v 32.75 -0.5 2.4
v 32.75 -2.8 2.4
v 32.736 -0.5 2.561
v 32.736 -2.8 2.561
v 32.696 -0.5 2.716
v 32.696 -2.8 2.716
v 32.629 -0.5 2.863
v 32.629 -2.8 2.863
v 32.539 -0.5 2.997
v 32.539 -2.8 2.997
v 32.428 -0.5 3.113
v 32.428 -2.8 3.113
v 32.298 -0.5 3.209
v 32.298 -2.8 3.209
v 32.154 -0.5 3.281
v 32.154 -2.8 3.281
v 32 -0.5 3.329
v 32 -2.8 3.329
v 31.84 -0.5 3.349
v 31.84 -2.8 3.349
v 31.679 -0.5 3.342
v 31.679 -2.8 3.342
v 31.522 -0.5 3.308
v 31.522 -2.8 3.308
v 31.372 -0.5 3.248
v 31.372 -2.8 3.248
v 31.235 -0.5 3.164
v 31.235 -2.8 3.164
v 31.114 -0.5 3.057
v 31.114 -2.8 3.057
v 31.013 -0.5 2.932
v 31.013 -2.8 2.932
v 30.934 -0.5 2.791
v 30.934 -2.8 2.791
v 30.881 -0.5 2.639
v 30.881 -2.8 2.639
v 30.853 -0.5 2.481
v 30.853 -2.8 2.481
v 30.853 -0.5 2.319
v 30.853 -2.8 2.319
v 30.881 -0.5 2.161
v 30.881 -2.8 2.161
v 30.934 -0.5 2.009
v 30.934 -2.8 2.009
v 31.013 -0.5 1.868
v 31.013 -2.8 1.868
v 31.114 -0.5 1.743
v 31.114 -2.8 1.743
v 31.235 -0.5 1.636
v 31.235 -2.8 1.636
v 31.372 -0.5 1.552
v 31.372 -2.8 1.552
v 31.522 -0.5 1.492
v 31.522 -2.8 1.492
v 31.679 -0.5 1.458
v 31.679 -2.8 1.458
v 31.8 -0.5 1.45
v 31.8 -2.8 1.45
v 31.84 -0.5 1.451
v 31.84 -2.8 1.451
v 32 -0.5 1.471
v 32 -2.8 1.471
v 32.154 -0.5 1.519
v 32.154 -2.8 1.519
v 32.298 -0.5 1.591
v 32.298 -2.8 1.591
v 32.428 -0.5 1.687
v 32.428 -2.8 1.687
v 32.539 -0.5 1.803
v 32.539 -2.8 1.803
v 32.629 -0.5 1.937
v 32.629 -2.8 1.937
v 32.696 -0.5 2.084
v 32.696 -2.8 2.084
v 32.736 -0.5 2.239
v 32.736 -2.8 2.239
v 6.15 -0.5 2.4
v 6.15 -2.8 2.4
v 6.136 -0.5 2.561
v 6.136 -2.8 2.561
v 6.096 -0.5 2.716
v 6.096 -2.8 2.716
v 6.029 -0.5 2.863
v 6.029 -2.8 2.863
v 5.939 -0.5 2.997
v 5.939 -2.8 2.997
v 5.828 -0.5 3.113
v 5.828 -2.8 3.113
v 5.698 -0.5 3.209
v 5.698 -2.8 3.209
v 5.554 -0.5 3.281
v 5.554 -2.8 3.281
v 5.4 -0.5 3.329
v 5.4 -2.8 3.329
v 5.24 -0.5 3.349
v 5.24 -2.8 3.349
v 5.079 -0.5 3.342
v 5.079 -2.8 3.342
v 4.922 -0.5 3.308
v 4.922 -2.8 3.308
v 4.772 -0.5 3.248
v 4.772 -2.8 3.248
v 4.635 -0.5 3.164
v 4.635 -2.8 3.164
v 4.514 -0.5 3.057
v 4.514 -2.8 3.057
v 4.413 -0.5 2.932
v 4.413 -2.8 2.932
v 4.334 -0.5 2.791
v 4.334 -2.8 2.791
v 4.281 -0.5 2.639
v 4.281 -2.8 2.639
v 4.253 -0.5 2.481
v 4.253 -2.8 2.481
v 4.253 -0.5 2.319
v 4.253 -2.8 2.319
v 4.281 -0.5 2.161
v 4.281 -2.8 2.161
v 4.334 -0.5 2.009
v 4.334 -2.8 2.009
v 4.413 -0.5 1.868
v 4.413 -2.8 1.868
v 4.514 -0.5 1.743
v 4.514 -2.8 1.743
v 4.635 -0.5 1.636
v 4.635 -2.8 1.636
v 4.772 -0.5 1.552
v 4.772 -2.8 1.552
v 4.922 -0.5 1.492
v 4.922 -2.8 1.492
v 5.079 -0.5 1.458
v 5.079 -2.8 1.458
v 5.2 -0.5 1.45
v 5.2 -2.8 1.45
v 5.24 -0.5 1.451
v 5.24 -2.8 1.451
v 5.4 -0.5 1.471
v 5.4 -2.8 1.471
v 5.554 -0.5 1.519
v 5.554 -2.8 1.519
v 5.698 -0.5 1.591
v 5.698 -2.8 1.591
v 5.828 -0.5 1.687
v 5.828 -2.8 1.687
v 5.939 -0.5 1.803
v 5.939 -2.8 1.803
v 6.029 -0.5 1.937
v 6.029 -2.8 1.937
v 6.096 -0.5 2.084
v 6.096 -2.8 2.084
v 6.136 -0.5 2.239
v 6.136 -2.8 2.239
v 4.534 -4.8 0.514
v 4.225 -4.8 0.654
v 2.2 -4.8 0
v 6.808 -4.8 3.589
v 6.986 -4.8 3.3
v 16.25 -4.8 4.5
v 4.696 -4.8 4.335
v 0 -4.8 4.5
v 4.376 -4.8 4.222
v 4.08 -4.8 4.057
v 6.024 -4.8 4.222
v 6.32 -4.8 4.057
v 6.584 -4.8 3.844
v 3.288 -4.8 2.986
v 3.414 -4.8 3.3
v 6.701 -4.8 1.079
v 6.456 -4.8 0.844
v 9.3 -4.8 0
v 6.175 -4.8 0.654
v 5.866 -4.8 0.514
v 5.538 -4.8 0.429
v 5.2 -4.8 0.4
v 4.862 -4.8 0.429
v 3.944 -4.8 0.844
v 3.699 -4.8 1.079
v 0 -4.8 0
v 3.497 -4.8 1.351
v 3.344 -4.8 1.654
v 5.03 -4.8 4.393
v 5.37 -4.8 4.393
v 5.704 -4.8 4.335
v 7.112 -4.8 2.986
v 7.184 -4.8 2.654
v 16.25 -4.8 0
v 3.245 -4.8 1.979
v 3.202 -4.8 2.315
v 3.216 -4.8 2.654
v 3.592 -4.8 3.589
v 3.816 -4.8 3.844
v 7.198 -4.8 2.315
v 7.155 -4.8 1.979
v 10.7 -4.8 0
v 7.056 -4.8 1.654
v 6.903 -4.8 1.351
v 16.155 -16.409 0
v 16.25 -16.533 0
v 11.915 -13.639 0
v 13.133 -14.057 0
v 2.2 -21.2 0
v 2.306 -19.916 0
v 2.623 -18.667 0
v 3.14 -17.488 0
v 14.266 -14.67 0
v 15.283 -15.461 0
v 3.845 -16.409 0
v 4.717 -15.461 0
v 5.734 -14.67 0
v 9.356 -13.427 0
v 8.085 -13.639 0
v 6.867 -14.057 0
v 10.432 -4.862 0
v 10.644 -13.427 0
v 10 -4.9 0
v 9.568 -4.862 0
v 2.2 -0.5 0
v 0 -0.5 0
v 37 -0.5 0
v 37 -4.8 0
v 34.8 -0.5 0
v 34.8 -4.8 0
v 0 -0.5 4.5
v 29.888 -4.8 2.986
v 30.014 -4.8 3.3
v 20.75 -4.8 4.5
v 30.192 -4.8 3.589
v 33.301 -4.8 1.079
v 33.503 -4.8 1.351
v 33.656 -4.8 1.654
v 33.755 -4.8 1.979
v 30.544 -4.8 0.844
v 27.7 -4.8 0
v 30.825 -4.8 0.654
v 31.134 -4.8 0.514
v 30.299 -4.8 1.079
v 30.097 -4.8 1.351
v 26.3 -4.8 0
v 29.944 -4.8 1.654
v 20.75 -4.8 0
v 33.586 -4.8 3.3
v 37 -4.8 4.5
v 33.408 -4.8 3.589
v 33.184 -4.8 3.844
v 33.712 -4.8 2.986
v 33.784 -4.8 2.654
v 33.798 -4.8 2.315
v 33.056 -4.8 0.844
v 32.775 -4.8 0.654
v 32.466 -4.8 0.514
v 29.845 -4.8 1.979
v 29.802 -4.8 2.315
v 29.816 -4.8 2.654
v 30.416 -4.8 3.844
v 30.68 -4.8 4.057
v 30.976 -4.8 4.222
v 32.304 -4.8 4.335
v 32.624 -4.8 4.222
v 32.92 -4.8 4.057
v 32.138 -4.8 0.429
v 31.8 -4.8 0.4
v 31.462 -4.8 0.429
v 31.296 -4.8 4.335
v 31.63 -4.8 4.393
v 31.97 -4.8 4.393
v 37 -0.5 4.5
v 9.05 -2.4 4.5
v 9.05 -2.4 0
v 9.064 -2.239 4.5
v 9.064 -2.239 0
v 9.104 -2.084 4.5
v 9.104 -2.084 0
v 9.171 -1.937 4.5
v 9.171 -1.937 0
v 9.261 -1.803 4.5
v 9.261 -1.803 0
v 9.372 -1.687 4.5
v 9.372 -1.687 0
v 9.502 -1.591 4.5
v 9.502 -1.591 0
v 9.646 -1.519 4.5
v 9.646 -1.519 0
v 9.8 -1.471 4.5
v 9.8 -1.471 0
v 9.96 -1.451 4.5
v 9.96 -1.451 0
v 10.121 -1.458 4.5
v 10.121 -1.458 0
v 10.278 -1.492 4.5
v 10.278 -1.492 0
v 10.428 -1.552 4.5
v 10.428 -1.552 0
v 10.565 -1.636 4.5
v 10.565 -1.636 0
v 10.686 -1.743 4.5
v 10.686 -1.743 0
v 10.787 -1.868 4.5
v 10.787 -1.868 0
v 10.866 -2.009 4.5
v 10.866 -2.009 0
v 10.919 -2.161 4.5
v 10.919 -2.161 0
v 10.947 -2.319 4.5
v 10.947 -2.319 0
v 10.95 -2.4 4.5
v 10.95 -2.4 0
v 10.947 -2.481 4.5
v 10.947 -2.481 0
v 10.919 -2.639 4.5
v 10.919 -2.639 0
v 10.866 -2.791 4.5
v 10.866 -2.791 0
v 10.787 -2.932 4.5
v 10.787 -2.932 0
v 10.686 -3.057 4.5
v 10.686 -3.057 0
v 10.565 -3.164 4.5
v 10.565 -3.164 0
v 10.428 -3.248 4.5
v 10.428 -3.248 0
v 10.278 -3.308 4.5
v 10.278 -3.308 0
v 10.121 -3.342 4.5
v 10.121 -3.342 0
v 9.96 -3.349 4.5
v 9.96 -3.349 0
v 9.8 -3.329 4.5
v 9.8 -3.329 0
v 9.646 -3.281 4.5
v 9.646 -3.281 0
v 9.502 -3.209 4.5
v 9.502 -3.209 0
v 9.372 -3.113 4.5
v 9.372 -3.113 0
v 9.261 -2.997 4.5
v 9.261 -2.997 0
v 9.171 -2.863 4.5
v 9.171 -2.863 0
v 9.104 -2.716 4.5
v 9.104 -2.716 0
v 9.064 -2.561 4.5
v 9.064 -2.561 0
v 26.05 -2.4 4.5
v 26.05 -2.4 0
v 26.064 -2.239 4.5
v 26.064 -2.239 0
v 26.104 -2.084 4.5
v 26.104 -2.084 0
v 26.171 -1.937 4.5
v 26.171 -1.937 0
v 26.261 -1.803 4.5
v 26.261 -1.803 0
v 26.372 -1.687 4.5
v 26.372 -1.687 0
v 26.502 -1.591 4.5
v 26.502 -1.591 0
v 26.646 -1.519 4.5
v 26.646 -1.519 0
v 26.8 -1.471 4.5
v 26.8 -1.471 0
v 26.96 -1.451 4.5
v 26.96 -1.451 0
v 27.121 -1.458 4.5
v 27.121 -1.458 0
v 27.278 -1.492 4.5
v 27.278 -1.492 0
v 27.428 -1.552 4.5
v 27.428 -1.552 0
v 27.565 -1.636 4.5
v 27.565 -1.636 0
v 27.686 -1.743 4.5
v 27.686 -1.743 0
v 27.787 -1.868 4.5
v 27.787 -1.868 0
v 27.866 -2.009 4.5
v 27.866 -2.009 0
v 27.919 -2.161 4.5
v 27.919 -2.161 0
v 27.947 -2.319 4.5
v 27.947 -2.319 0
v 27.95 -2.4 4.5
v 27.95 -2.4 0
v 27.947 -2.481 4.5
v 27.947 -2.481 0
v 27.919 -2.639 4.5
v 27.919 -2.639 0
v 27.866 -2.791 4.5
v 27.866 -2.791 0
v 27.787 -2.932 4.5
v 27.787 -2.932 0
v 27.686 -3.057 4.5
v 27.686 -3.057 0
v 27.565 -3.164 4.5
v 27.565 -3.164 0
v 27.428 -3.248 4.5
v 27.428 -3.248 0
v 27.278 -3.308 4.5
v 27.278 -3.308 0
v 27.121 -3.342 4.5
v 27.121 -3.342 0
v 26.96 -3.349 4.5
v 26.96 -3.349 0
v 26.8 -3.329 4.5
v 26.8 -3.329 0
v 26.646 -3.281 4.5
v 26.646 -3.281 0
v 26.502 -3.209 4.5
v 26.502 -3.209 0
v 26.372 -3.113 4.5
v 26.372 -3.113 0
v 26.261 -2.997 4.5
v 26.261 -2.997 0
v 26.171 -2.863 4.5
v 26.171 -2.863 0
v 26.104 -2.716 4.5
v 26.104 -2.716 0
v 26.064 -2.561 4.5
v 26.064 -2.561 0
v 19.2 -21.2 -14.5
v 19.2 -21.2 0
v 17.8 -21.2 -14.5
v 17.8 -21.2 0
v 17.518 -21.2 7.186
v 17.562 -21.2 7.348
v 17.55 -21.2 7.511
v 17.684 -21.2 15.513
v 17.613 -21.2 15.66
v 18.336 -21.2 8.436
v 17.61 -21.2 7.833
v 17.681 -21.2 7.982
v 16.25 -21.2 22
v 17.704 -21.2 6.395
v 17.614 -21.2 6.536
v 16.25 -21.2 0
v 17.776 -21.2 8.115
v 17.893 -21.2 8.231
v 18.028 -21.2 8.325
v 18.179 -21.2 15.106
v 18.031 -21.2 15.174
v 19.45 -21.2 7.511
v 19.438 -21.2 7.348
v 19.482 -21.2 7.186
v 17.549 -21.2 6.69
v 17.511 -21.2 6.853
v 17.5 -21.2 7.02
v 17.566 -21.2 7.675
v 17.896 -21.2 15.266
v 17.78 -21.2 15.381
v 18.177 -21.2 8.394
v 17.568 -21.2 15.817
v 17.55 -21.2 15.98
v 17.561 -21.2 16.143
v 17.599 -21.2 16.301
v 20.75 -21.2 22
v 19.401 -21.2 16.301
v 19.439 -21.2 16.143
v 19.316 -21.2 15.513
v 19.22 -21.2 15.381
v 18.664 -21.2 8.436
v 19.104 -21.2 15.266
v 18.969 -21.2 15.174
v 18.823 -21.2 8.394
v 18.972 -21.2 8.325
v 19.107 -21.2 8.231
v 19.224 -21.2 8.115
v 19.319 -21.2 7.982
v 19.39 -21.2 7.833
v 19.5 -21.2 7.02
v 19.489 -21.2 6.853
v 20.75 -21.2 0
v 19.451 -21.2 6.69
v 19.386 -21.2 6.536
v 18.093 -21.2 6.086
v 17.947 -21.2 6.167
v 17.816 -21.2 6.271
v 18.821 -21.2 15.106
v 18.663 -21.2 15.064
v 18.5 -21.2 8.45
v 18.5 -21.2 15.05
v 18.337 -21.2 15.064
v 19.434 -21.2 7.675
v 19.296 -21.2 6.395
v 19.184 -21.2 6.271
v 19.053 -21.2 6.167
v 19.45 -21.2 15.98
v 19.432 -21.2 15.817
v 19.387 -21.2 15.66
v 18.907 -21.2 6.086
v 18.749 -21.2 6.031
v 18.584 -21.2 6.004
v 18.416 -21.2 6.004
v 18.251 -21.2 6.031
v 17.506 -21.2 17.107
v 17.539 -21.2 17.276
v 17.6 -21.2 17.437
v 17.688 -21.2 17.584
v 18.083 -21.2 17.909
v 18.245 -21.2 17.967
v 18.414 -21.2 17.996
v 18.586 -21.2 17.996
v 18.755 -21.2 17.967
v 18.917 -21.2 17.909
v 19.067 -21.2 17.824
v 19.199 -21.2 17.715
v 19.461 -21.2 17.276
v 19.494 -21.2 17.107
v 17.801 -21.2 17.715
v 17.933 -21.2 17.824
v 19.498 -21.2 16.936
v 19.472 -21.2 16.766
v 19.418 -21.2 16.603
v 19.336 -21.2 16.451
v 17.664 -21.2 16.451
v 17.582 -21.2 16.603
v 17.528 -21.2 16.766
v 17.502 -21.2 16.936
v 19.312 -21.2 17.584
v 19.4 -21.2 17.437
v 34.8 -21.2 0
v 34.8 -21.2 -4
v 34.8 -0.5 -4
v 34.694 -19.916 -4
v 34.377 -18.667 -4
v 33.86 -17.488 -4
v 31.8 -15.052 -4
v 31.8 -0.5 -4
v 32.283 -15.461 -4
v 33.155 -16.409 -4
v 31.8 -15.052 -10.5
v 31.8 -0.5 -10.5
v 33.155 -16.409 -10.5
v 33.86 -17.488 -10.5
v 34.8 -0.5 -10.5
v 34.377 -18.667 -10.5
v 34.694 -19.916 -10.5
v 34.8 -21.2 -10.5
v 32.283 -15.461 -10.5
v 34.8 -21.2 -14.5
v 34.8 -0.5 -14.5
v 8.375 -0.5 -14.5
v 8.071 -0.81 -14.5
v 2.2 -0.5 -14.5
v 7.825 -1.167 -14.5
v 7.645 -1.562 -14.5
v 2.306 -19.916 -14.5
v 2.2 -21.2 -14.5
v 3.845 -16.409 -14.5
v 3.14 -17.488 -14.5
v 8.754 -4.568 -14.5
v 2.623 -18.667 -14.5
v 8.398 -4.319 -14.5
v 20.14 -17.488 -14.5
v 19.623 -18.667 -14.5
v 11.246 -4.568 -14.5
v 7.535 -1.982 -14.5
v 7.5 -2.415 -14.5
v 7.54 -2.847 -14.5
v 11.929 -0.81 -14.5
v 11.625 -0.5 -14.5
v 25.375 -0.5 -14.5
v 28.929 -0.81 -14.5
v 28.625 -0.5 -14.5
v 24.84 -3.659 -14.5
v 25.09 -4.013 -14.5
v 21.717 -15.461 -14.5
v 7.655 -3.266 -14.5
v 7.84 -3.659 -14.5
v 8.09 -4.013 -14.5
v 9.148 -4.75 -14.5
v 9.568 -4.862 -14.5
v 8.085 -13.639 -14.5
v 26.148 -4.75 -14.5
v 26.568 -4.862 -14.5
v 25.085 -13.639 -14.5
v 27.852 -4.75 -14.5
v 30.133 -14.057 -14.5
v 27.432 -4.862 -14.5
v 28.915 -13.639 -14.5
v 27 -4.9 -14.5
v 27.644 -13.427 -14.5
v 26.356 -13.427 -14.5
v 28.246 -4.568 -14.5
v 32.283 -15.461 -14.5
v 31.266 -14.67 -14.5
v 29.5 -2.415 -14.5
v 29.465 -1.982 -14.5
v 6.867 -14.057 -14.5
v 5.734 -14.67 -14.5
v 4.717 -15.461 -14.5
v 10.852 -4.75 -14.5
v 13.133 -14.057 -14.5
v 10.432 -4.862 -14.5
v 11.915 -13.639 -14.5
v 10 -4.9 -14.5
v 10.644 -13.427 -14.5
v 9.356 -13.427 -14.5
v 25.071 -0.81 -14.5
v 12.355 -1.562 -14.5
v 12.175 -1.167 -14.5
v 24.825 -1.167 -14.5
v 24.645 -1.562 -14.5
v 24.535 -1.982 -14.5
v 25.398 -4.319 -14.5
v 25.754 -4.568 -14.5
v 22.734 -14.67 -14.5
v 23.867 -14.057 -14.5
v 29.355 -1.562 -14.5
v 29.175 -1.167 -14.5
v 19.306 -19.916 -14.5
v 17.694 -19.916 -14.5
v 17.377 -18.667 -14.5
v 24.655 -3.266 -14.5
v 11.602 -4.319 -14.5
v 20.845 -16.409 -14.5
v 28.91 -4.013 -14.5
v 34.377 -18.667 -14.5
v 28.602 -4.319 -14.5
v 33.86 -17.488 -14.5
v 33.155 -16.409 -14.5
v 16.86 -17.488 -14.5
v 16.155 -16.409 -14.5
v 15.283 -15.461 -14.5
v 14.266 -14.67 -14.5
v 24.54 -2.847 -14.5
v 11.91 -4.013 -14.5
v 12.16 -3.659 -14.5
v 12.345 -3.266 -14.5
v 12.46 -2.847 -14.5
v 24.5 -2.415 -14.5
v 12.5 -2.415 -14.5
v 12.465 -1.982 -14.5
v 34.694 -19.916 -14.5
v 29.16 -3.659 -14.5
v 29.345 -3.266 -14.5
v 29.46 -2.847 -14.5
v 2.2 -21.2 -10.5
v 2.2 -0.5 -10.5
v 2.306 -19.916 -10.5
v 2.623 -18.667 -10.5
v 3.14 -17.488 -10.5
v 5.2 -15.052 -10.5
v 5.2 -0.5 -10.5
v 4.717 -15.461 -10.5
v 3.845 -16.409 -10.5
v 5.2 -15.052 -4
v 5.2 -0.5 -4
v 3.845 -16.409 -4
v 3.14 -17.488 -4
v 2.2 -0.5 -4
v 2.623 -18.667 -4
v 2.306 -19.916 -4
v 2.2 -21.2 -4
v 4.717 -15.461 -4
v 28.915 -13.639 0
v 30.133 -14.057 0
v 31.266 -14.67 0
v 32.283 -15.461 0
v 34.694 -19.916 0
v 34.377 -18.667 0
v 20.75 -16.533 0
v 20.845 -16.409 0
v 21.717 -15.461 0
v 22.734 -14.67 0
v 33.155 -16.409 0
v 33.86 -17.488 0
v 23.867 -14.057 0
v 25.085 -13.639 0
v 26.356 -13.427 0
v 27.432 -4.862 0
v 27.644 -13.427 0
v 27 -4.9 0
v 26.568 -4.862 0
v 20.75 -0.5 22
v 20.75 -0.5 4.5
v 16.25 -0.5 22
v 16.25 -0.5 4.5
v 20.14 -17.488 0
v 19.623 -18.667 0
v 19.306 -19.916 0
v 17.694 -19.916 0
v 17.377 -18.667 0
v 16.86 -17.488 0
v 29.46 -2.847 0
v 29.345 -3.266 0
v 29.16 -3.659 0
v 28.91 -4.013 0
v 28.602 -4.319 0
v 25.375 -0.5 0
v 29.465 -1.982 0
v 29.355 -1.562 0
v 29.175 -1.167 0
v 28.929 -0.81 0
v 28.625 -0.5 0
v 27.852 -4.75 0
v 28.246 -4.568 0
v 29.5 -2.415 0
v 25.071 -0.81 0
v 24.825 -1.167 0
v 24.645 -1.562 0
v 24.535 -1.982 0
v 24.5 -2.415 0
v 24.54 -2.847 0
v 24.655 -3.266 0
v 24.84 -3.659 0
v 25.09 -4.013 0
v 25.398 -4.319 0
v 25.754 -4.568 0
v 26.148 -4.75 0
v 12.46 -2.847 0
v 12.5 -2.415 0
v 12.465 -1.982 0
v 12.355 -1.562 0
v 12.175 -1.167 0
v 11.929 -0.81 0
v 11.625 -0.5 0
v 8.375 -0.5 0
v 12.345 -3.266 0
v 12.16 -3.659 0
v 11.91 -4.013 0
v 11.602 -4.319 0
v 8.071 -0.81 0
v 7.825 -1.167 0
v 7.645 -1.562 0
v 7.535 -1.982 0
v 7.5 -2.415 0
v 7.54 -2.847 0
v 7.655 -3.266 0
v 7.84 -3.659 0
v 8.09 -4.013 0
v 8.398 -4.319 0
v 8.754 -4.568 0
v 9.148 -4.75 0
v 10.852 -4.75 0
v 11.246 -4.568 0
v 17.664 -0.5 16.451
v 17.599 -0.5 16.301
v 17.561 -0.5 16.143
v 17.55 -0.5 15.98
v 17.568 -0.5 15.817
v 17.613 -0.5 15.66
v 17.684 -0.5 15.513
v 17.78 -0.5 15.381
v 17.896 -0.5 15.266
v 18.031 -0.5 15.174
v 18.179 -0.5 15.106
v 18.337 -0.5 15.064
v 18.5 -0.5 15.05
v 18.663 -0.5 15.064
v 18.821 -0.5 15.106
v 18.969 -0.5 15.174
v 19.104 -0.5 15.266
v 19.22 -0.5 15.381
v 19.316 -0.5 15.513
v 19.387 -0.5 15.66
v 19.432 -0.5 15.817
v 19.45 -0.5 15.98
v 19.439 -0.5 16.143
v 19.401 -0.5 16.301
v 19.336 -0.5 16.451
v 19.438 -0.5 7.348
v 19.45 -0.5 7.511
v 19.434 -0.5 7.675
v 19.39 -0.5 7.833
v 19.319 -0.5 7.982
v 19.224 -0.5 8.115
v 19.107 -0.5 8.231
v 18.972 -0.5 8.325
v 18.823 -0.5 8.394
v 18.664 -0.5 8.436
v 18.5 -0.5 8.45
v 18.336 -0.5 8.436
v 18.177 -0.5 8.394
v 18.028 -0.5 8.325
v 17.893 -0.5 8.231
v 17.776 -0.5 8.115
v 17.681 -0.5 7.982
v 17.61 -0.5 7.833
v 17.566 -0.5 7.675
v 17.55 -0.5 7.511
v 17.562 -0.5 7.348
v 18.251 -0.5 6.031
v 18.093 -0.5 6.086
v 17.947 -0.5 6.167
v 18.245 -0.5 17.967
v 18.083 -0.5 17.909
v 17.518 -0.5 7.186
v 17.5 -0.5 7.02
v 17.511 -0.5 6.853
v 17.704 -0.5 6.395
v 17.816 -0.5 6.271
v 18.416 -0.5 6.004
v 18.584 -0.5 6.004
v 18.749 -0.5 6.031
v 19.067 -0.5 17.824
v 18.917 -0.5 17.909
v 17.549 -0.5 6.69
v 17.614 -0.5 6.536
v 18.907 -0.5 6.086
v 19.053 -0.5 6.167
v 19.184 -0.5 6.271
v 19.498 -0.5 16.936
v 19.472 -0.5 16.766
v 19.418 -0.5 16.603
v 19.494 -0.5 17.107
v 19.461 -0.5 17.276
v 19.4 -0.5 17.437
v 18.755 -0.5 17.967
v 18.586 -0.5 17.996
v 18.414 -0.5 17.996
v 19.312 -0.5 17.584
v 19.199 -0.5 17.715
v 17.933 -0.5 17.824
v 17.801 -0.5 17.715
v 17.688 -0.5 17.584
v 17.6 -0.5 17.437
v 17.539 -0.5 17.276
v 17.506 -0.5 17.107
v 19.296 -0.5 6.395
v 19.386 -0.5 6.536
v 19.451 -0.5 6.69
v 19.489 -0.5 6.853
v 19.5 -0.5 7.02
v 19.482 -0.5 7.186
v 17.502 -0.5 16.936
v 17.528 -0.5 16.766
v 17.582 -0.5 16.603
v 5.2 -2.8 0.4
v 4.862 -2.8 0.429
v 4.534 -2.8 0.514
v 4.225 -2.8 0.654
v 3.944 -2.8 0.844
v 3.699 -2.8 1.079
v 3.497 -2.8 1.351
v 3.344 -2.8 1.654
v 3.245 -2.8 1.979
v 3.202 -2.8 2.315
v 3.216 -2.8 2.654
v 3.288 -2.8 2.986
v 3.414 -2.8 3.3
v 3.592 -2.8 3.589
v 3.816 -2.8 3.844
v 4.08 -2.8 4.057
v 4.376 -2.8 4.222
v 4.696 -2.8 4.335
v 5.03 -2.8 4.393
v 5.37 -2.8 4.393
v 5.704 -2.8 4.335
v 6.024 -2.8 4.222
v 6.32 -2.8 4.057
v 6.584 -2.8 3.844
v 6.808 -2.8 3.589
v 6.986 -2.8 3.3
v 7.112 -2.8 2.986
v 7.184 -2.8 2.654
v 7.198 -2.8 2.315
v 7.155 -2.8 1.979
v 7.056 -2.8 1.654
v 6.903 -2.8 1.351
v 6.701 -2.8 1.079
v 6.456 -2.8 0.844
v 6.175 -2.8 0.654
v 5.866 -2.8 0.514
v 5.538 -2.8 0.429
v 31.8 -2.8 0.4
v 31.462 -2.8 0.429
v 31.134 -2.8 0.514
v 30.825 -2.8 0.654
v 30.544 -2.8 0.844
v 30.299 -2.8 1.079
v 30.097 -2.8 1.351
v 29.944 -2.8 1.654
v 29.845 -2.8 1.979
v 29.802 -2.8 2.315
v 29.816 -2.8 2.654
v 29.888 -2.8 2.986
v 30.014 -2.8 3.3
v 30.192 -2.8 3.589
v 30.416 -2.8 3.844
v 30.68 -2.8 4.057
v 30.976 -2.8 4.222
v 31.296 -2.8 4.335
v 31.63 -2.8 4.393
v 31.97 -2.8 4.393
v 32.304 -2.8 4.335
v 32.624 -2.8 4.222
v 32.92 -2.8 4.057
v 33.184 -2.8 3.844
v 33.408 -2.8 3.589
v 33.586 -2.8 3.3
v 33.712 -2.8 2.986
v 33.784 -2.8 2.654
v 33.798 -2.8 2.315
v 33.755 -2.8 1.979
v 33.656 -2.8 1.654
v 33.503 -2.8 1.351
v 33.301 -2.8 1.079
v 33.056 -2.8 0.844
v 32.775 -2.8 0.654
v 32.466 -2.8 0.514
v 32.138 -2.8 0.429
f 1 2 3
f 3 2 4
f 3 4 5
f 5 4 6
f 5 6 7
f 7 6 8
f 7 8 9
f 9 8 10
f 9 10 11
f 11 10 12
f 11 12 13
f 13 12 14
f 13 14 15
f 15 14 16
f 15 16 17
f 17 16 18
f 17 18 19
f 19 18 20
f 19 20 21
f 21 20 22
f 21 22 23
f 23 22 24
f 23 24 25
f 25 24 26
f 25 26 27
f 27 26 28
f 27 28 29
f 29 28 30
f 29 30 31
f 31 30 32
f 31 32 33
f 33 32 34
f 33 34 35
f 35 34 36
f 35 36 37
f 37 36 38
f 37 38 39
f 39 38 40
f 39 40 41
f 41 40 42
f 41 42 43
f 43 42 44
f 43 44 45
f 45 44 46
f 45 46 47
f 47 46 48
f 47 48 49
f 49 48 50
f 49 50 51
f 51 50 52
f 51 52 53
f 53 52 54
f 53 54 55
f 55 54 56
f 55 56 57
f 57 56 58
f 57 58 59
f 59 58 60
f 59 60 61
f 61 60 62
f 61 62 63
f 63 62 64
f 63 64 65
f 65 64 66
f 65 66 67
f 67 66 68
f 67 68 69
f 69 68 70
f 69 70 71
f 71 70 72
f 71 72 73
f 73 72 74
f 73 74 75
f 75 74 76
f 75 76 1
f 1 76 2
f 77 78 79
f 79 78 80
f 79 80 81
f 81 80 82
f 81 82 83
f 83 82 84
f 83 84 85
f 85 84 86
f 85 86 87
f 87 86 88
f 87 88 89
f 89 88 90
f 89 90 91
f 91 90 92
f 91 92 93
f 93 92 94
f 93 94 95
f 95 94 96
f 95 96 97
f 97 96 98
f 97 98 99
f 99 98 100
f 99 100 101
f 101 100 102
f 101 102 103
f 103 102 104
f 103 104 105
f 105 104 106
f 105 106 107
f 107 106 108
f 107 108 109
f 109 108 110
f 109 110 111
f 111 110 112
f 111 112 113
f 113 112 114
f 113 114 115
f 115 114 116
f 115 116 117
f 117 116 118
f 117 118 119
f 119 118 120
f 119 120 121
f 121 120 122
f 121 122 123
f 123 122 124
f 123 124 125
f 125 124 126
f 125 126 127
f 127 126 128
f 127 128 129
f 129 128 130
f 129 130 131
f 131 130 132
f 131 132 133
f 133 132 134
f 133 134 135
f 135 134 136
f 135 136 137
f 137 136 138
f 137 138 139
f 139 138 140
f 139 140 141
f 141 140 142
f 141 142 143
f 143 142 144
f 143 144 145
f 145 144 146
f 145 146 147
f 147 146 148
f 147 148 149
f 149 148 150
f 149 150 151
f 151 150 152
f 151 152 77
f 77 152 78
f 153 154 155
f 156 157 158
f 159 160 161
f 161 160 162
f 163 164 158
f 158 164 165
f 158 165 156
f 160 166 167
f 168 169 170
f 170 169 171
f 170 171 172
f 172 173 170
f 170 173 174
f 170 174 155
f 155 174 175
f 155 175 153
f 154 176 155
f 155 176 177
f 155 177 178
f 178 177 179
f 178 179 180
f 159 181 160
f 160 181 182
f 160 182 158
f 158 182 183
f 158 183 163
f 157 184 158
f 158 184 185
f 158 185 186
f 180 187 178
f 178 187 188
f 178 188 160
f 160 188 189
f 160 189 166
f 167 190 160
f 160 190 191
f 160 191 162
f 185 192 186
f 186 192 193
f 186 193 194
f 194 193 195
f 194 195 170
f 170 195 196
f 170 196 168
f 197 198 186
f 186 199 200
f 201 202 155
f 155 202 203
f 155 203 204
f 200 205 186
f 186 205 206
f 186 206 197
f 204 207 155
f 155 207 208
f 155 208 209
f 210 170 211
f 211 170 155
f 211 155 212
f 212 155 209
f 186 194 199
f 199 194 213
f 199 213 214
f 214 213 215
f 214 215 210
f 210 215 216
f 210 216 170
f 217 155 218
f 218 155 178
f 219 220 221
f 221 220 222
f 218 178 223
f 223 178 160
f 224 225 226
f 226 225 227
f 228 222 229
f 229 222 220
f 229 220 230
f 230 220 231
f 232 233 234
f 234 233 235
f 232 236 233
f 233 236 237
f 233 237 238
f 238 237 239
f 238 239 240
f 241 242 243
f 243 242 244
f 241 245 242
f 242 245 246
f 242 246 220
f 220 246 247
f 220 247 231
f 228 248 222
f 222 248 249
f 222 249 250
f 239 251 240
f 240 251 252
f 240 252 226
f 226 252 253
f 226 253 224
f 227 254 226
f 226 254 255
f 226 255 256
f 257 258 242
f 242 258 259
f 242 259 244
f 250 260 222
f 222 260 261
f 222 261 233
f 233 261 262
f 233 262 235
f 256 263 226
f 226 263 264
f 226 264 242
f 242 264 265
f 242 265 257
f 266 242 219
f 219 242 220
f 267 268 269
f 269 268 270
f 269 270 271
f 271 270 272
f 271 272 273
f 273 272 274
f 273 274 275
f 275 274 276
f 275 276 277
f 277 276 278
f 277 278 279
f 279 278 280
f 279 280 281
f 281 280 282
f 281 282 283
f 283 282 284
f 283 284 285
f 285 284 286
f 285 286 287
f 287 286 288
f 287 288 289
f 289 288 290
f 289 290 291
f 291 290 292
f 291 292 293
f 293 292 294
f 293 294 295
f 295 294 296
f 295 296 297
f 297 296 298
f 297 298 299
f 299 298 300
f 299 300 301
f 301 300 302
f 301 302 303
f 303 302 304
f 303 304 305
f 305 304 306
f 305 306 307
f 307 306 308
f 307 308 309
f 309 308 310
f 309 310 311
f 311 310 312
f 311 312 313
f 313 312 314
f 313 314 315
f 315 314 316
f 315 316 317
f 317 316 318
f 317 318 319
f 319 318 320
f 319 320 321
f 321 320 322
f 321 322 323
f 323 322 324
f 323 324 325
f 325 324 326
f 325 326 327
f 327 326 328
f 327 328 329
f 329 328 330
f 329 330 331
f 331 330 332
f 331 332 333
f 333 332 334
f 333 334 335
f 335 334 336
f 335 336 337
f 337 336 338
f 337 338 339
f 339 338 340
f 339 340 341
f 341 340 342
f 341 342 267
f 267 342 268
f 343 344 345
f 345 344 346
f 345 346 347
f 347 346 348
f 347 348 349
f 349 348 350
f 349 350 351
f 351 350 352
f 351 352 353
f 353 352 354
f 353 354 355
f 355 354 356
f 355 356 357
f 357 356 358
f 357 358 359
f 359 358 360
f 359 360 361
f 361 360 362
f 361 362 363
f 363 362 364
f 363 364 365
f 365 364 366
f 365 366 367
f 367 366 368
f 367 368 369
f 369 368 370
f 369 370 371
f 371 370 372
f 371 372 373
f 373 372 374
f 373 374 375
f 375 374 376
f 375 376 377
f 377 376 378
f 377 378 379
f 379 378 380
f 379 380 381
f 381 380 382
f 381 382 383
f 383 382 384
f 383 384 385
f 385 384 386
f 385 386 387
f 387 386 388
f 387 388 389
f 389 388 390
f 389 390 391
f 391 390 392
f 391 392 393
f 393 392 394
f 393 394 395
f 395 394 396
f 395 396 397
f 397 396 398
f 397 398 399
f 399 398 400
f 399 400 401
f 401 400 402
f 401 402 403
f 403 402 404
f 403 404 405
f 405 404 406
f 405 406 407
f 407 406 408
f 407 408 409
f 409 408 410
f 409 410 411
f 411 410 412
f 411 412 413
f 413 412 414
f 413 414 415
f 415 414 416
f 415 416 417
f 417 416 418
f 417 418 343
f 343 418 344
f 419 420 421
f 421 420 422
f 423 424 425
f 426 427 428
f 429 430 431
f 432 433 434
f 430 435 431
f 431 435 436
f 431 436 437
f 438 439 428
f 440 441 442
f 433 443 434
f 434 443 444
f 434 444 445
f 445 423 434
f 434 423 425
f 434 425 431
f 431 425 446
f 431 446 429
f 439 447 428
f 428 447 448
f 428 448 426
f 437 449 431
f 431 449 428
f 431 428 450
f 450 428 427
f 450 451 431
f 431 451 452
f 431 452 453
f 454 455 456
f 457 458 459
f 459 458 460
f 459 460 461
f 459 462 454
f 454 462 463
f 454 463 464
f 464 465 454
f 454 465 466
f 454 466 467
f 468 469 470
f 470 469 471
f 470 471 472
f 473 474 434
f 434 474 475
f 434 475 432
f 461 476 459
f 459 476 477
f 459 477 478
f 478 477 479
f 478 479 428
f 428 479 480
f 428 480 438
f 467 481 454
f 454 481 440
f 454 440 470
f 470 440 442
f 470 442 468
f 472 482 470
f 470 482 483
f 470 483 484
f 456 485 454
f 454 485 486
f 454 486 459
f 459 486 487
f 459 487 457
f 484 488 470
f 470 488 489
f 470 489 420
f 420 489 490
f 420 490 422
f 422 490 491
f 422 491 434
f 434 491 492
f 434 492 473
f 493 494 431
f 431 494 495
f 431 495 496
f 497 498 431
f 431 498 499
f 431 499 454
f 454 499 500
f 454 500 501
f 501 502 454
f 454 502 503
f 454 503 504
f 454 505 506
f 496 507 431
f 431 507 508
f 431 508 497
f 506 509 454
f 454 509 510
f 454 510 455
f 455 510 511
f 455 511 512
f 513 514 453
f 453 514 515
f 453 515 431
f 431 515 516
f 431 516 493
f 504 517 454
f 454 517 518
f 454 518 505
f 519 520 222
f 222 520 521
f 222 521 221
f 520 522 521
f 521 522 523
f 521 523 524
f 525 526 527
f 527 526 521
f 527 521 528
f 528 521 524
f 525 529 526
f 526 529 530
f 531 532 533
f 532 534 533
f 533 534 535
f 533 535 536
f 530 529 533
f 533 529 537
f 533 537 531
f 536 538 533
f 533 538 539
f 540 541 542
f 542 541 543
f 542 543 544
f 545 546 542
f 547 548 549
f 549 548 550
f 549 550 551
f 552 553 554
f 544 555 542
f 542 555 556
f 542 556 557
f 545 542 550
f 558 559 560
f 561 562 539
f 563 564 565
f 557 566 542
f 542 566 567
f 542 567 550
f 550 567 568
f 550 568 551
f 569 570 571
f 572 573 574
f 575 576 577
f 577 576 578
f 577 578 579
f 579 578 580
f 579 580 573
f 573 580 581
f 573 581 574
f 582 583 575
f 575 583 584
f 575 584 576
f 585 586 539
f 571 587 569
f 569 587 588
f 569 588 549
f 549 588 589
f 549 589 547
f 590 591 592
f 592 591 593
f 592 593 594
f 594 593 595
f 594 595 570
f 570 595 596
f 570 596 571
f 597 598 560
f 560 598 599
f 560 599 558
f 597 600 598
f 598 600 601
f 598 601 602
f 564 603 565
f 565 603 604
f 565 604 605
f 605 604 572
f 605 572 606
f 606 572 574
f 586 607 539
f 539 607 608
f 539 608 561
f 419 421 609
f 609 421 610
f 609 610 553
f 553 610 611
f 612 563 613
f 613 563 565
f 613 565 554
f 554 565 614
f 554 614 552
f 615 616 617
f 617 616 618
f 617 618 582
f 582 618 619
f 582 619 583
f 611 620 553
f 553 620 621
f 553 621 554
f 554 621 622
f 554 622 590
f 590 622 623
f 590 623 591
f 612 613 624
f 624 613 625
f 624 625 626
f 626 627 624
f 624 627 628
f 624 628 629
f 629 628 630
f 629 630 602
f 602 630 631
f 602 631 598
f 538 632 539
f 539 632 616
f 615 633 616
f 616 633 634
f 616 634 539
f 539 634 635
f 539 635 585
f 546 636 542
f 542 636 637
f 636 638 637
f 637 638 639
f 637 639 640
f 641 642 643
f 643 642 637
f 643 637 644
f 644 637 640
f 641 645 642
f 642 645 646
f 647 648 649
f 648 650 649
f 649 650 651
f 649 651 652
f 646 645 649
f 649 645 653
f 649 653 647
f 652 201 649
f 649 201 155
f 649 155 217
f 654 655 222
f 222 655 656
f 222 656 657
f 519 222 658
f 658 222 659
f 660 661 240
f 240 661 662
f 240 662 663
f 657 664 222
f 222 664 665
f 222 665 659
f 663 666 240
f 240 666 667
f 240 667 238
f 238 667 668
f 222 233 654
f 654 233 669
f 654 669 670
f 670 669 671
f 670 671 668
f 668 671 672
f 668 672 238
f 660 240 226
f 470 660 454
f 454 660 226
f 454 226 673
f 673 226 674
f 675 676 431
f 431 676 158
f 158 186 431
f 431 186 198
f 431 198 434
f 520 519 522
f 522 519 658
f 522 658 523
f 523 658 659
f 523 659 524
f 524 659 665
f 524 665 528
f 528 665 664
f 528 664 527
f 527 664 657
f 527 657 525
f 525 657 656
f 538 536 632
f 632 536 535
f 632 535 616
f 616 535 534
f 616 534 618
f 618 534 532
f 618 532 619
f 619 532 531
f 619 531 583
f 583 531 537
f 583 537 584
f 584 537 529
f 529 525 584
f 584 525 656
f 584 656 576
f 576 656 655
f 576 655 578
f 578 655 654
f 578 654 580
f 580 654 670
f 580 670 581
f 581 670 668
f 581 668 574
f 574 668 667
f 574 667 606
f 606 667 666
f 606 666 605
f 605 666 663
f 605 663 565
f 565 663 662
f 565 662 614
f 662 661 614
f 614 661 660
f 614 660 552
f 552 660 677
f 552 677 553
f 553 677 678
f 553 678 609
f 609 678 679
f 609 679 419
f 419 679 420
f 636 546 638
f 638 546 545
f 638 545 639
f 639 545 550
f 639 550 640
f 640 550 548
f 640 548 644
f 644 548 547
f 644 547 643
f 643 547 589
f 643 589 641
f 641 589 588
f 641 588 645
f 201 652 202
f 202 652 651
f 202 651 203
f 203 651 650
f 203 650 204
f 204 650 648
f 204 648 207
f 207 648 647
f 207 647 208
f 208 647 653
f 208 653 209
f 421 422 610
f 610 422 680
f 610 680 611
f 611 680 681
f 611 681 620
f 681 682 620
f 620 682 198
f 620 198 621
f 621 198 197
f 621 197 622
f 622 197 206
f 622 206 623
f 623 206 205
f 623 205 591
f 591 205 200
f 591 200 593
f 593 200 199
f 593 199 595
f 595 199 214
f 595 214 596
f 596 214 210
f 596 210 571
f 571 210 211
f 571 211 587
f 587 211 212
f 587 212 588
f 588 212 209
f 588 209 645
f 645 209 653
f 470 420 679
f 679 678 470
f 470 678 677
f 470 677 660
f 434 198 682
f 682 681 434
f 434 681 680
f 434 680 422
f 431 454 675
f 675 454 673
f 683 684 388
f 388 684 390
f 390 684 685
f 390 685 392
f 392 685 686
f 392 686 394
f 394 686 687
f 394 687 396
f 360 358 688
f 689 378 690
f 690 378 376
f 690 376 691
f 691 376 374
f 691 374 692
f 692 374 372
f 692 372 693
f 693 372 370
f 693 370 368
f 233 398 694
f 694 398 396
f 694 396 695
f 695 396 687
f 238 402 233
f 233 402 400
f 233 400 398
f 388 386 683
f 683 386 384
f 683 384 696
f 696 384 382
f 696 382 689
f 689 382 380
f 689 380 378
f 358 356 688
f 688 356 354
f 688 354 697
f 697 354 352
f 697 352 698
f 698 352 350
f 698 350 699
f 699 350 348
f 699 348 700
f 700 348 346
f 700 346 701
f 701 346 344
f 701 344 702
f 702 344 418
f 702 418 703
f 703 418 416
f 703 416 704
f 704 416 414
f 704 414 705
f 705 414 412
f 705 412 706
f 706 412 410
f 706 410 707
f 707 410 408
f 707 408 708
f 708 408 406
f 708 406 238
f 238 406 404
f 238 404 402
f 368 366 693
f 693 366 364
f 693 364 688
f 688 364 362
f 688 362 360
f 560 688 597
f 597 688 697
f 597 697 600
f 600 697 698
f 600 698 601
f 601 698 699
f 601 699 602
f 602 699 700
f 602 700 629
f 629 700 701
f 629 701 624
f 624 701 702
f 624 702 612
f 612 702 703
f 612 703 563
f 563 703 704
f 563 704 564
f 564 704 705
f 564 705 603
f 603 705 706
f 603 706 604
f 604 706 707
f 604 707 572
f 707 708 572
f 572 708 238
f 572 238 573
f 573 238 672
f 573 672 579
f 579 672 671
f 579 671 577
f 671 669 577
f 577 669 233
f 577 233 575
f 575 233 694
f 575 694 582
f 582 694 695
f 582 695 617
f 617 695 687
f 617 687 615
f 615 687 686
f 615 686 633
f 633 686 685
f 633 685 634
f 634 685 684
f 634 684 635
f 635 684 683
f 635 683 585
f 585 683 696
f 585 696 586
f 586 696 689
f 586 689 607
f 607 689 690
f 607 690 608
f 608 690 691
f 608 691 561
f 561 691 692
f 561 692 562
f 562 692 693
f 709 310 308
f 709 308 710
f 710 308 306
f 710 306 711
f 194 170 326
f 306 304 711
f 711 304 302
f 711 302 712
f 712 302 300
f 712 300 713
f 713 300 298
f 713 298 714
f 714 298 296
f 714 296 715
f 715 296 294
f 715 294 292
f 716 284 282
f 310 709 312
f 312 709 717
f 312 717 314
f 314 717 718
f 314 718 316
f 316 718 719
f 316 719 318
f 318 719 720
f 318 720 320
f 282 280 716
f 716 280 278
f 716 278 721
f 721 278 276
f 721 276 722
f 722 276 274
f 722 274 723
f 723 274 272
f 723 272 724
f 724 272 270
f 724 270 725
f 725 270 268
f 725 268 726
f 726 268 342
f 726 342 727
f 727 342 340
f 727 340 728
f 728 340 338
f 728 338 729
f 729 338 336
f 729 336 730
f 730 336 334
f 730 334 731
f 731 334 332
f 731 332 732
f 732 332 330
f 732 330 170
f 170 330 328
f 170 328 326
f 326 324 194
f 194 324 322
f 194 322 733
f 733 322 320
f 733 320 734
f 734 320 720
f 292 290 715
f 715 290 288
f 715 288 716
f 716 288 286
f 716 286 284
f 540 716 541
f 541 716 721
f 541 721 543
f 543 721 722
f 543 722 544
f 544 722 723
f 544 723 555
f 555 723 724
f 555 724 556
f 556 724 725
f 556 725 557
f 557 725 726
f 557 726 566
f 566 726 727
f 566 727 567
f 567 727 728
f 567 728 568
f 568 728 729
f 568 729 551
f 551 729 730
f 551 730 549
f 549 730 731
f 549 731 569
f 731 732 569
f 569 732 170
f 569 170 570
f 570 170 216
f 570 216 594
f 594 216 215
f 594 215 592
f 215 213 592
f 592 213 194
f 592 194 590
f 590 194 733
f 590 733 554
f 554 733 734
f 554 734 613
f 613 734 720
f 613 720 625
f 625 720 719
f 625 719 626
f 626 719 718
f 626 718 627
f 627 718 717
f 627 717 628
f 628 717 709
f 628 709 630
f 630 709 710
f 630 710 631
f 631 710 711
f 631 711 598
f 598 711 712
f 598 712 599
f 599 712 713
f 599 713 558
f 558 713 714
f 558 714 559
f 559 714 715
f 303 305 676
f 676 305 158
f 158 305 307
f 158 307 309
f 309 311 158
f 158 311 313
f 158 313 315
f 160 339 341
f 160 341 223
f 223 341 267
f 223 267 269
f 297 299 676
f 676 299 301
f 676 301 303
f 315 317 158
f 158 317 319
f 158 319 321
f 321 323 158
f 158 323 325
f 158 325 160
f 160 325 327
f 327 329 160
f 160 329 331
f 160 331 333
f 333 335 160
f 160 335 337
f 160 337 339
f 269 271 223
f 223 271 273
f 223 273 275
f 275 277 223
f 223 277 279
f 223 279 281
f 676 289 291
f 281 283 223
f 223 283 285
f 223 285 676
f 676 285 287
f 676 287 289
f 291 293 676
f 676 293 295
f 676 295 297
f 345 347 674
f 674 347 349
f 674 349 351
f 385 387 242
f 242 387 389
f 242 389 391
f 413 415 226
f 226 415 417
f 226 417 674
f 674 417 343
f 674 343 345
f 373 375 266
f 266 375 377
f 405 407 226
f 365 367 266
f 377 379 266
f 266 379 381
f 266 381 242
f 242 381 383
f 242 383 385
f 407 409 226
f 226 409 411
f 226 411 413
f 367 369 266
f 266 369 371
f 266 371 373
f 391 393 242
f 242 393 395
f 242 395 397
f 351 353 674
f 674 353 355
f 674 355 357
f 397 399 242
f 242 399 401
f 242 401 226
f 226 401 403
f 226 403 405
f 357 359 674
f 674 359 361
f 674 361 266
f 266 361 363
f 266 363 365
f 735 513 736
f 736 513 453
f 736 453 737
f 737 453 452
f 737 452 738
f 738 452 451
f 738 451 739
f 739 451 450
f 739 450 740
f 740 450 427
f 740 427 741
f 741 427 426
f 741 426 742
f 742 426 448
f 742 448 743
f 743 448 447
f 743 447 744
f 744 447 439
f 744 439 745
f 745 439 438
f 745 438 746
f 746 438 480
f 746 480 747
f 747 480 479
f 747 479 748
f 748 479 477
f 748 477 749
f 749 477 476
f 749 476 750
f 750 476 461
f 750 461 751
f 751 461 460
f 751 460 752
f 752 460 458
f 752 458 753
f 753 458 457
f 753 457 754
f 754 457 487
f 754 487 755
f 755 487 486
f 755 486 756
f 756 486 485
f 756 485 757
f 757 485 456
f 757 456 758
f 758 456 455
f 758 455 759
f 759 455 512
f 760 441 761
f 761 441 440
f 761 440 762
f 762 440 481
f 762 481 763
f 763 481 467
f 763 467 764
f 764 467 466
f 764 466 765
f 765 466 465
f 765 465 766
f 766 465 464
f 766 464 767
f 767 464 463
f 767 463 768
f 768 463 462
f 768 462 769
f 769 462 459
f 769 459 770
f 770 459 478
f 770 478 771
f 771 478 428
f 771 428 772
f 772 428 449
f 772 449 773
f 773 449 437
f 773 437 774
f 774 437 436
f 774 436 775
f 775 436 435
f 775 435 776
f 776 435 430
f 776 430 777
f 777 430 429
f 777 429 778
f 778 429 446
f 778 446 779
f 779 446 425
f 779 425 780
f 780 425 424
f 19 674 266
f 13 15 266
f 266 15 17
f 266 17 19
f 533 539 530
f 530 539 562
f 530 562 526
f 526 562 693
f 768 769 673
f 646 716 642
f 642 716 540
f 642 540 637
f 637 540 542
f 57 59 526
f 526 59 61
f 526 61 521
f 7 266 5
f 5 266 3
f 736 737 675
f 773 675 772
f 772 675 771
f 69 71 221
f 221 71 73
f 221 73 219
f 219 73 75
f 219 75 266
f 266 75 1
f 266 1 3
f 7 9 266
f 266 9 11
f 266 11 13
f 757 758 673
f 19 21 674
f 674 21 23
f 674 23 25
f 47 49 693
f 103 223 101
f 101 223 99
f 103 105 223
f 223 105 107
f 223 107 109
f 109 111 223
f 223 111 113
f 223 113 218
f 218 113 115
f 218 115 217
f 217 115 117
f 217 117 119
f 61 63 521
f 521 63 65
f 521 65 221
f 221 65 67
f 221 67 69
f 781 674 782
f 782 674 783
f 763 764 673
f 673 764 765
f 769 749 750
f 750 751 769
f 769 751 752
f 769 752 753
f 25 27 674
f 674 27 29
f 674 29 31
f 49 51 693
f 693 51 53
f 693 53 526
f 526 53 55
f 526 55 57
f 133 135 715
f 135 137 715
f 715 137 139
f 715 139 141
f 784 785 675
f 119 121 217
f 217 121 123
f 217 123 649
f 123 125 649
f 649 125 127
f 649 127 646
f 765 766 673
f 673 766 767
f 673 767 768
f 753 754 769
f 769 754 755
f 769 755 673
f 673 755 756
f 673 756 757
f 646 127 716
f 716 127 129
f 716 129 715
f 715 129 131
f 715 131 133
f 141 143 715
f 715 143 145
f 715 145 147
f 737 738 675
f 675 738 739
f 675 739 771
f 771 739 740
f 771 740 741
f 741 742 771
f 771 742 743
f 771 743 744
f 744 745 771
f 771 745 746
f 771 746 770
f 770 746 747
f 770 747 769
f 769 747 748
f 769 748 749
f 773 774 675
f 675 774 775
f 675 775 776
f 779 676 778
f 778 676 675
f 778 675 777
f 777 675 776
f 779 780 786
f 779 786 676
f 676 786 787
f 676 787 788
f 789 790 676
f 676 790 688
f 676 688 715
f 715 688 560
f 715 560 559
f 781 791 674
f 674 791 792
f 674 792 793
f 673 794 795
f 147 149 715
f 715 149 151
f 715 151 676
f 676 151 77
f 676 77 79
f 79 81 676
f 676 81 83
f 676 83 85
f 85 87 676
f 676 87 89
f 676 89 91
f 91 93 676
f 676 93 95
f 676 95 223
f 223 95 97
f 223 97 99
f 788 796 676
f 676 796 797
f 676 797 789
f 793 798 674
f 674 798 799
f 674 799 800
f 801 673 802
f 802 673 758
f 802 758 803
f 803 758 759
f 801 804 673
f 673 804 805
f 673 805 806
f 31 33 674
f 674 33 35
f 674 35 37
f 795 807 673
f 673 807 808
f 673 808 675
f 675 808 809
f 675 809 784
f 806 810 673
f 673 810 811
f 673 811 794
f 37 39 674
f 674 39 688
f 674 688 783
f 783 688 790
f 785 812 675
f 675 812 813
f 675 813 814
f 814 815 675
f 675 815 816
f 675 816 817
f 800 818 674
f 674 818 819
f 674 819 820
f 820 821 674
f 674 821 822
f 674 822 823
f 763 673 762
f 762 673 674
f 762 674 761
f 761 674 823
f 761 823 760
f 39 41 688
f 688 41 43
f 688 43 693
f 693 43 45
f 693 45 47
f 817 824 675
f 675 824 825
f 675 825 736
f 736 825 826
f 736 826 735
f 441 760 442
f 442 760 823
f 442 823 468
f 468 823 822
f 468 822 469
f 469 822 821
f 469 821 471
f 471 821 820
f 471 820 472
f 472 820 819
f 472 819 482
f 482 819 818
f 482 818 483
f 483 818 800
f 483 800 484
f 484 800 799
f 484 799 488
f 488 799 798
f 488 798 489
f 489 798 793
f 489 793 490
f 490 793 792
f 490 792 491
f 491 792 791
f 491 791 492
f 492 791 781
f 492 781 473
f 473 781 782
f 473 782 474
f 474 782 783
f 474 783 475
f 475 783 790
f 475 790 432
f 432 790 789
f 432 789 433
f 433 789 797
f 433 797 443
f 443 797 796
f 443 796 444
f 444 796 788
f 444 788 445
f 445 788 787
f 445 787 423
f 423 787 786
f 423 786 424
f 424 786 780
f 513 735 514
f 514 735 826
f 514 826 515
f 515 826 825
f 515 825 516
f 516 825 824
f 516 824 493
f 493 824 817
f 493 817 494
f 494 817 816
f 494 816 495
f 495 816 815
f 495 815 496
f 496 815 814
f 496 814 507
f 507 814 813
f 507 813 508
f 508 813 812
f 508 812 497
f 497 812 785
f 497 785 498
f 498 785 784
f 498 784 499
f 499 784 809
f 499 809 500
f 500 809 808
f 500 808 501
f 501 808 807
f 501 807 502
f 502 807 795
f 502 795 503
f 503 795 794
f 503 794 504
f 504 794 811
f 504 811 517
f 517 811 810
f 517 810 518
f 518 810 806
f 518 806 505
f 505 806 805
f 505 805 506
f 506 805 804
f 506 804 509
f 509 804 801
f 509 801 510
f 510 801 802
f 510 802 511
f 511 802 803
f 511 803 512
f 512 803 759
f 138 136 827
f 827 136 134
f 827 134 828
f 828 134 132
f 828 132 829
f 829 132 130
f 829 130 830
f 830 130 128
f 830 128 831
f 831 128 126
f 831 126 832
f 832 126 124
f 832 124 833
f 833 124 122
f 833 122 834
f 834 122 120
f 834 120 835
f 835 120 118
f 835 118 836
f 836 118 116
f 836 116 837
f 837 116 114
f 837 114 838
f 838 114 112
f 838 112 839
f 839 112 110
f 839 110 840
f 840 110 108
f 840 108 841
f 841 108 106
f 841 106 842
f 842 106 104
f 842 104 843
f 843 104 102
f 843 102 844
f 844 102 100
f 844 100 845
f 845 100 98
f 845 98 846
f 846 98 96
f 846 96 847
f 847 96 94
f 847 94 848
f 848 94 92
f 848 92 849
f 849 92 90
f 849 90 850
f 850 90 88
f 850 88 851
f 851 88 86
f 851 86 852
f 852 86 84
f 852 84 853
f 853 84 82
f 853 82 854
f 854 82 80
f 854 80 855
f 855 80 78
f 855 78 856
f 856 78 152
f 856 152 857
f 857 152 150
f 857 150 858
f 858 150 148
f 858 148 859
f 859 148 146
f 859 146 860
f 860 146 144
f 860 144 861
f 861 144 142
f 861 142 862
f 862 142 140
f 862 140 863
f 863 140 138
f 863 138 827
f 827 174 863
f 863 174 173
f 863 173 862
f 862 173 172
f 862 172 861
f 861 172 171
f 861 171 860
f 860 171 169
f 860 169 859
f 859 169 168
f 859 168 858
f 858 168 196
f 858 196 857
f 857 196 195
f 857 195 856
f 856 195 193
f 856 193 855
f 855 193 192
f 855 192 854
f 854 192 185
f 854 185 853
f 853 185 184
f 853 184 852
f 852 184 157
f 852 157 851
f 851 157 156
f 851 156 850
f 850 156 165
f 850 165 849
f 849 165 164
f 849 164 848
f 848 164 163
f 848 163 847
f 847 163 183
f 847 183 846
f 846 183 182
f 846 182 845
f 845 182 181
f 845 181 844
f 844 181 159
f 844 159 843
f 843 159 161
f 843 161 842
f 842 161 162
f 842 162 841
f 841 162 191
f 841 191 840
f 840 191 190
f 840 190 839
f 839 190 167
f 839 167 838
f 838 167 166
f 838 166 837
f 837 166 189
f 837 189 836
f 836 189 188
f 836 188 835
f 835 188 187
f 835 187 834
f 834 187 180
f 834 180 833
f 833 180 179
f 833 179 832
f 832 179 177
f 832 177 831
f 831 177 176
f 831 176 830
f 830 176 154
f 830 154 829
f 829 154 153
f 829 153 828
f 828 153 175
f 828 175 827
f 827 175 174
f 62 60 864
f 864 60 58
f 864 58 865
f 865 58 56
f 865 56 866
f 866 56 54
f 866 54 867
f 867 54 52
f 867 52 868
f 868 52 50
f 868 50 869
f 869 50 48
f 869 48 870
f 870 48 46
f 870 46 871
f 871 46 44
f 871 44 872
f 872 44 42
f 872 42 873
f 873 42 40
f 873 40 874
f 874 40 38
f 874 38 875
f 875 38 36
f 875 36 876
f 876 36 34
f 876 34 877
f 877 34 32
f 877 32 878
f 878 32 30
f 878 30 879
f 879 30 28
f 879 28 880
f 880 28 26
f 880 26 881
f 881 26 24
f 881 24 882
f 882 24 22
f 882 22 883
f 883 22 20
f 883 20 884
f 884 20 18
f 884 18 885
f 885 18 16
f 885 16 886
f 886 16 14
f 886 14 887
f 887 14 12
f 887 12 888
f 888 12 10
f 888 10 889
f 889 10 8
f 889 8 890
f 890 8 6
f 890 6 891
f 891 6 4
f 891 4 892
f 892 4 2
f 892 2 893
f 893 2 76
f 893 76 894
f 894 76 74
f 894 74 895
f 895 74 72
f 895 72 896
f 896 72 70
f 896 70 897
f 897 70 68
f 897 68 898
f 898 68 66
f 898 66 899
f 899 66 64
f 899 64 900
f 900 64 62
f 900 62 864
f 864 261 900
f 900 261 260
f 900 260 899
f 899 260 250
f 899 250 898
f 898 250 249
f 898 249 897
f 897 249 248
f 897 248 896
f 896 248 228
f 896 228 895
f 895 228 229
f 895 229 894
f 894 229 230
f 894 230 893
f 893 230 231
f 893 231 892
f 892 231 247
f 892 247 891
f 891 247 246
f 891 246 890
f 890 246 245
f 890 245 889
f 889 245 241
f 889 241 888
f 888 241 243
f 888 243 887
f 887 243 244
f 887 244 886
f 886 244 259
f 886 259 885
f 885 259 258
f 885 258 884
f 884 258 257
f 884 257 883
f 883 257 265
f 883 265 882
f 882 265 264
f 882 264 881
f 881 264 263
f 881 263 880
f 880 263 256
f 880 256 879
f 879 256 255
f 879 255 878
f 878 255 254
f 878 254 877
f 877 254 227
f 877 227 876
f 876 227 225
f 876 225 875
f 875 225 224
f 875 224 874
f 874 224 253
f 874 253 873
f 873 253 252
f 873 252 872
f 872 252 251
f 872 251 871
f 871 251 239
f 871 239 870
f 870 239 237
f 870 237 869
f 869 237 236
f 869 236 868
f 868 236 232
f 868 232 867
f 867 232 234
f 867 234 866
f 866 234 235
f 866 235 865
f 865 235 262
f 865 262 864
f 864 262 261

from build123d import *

# Parameters (mm, degrees)
SKETCH_1_W           = 37
SKETCH_1_H           = 4.8
SKETCH_1_R           = 0.95
EXTRUDE_1_DEPTH      = 4
EXTRUDE_2_DEPTH      = 21.2
SKETCH_8_W           = 4.5
SKETCH_8_H           = 4.8
EXTRUDE_4_DEPTH      = 8
SKETCH_12_R          = 7.8
CUT_EXTRUDE_3_DEPTH  = 14.5
EXTRUDE_6_DEPTH      = 16.4
EXTRUDE_6_DEPTH_BACK = 4.8
SKETCH_13_W          = 4.5
SKETCH_13_H          = 22
SKETCH_15_R          = 2.5
CUT_EXTRUDE_4_DEPTH  = 14.5
SKETCH_16_W          = 37
SKETCH_16_H          = 4.8
SKETCH_16_R          = 0.95
EXTRUDE_8_DEPTH      = 0.5
SKETCH_19_R          = 0.95
CUT_EXTRUDE_5_DEPTH  = 30
SKETCH_21_W          = 37
SKETCH_21_H          = 0.5
CUT_EXTRUDE_6_DEPTH  = 57.131007474
SKETCH_24_R          = 1
CUT_EXTRUDE_7_DEPTH  = 30
SKETCH_25_R          = 0.95
CUT_EXTRUDE_8_DEPTH  = 10
SKETCH_27_R          = 2
CUT_EXTRUDE_9_DEPTH  = 2


with BuildPart() as part:
    # 草图1 → 凸台-拉伸1 (new body)
    with BuildSketch(Plane.XY):
        with Locations((18.5, -2.4)):
            Rectangle(SKETCH_1_W, SKETCH_1_H)
        with Locations((10, -2.4)):
            Circle(SKETCH_1_R, mode=Mode.SUBTRACT)
        with Locations((27, -2.4)):
            Circle(SKETCH_1_R, mode=Mode.SUBTRACT)
    extrude(amount=EXTRUDE_1_DEPTH)

    # 草图4 → 凸台-拉伸2 (add)
    with BuildSketch(Plane(origin=(0, 0, 0), x_dir=(1, 0, 0), z_dir=(0, 1, 0))):
        Polygon((2.2, 0), (2.2, 4), (5.2, 4), (5.2, 10.5), (2.2, 10.5), (2.2, 14.5), (34.8, 14.5), (34.8, 10.5), (31.8, 10.5), (31.8, 4), (34.8, 4), (34.8, 0), align=None)
    extrude(amount=-EXTRUDE_2_DEPTH)

    # 草图8 → 凸台-拉伸4 (add)
    with BuildSketch(Plane.XY.offset(4)):
        with Locations((18.5, -2.4)):
            Rectangle(SKETCH_8_W, SKETCH_8_H)
    extrude(amount=EXTRUDE_4_DEPTH)

    # 草图12 → 切除-拉伸3 (cut)
    with BuildSketch(Plane.XY):
        with Locations((10, -21.2)):
            Circle(SKETCH_12_R)
        with Locations((27, -21.2)):
            Circle(SKETCH_12_R)
    extrude(amount=-CUT_EXTRUDE_3_DEPTH, mode=Mode.SUBTRACT)

    # 草图13 → 凸台-拉伸6 (add, two sides: drawn at the far end of the back side and taken through both)
    with BuildSketch(Plane.XZ.offset(4.8).offset(-EXTRUDE_6_DEPTH_BACK)):
        with Locations((18.5, 11)):
            Rectangle(SKETCH_13_W, SKETCH_13_H)
    extrude(amount=EXTRUDE_6_DEPTH + EXTRUDE_6_DEPTH_BACK)

    # 草图15 → 切除-拉伸4 (cut)
    with BuildSketch(Plane.XY):
        with Locations((10, -2.4)):
            Circle(SKETCH_15_R)
        with Locations((27, -2.4)):
            Circle(SKETCH_15_R)
    extrude(amount=-CUT_EXTRUDE_4_DEPTH, mode=Mode.SUBTRACT)

    # 草图16 → 凸台-拉伸8 (add)
    with BuildSketch(Plane.XY.offset(4)):
        with Locations((18.5, -2.4)):
            Rectangle(SKETCH_16_W, SKETCH_16_H)
        with Locations((10, -2.4)):
            Circle(SKETCH_16_R, mode=Mode.SUBTRACT)
        with Locations((27, -2.4)):
            Circle(SKETCH_16_R, mode=Mode.SUBTRACT)
    extrude(amount=EXTRUDE_8_DEPTH)

    # 草图19 → 切除-拉伸5 (cut)
    with BuildSketch(Plane.XZ.offset(21.2)):
        with Locations(Location((18.5, 7.5, 0), (0, 0, 270))):
            Circle(SKETCH_19_R)
        with Locations(Location((18.5, 16, 0), (0, 0, 270))):
            Circle(SKETCH_19_R)
    extrude(amount=-CUT_EXTRUDE_5_DEPTH, mode=Mode.SUBTRACT)

    # 草图21 → 切除-拉伸6 (cut, through all)
    with BuildSketch(Plane(origin=(0, 0, -14.5), x_dir=(-1, 0, 0), z_dir=(0, 0, -1))):
        with Locations((-18.5, -0.25)):
            Rectangle(SKETCH_21_W, SKETCH_21_H)
    extrude(amount=-CUT_EXTRUDE_6_DEPTH, mode=Mode.SUBTRACT)

    # 草图24 → 切除-拉伸7 (cut)
    with BuildSketch(Plane(origin=(0, -0.5, 0), x_dir=(1, 0, 0), z_dir=(0, 1, 0))):
        with Locations((18.5, -17)):
            Circle(SKETCH_24_R)
        with Locations((18.5, -7)):
            Circle(SKETCH_24_R)
    extrude(amount=-CUT_EXTRUDE_7_DEPTH, mode=Mode.SUBTRACT)

    # 草图25 → 切除-拉伸8 (cut)
    with BuildSketch(Plane.XZ.offset(4.8)):
        with Locations((5.2, 2.4)):
            Circle(SKETCH_25_R)
        with Locations((31.8, 2.4)):
            Circle(SKETCH_25_R)
    extrude(amount=-CUT_EXTRUDE_8_DEPTH, mode=Mode.SUBTRACT)

    # 草图27 → 切除-拉伸9 (cut)
    with BuildSketch(Plane(origin=(0, -4.8, 0), x_dir=(-1, 0, 0), z_dir=(0, -1, 0))):
        with Locations(Location((-5.2, -2.4, 0), (0, 0, 90))):
            Circle(SKETCH_27_R)
        with Locations(Location((-31.8, -2.4, 0), (0, 0, 90))):
            Circle(SKETCH_27_R)
    extrude(amount=-CUT_EXTRUDE_9_DEPTH, mode=Mode.SUBTRACT)


solid = part.part
